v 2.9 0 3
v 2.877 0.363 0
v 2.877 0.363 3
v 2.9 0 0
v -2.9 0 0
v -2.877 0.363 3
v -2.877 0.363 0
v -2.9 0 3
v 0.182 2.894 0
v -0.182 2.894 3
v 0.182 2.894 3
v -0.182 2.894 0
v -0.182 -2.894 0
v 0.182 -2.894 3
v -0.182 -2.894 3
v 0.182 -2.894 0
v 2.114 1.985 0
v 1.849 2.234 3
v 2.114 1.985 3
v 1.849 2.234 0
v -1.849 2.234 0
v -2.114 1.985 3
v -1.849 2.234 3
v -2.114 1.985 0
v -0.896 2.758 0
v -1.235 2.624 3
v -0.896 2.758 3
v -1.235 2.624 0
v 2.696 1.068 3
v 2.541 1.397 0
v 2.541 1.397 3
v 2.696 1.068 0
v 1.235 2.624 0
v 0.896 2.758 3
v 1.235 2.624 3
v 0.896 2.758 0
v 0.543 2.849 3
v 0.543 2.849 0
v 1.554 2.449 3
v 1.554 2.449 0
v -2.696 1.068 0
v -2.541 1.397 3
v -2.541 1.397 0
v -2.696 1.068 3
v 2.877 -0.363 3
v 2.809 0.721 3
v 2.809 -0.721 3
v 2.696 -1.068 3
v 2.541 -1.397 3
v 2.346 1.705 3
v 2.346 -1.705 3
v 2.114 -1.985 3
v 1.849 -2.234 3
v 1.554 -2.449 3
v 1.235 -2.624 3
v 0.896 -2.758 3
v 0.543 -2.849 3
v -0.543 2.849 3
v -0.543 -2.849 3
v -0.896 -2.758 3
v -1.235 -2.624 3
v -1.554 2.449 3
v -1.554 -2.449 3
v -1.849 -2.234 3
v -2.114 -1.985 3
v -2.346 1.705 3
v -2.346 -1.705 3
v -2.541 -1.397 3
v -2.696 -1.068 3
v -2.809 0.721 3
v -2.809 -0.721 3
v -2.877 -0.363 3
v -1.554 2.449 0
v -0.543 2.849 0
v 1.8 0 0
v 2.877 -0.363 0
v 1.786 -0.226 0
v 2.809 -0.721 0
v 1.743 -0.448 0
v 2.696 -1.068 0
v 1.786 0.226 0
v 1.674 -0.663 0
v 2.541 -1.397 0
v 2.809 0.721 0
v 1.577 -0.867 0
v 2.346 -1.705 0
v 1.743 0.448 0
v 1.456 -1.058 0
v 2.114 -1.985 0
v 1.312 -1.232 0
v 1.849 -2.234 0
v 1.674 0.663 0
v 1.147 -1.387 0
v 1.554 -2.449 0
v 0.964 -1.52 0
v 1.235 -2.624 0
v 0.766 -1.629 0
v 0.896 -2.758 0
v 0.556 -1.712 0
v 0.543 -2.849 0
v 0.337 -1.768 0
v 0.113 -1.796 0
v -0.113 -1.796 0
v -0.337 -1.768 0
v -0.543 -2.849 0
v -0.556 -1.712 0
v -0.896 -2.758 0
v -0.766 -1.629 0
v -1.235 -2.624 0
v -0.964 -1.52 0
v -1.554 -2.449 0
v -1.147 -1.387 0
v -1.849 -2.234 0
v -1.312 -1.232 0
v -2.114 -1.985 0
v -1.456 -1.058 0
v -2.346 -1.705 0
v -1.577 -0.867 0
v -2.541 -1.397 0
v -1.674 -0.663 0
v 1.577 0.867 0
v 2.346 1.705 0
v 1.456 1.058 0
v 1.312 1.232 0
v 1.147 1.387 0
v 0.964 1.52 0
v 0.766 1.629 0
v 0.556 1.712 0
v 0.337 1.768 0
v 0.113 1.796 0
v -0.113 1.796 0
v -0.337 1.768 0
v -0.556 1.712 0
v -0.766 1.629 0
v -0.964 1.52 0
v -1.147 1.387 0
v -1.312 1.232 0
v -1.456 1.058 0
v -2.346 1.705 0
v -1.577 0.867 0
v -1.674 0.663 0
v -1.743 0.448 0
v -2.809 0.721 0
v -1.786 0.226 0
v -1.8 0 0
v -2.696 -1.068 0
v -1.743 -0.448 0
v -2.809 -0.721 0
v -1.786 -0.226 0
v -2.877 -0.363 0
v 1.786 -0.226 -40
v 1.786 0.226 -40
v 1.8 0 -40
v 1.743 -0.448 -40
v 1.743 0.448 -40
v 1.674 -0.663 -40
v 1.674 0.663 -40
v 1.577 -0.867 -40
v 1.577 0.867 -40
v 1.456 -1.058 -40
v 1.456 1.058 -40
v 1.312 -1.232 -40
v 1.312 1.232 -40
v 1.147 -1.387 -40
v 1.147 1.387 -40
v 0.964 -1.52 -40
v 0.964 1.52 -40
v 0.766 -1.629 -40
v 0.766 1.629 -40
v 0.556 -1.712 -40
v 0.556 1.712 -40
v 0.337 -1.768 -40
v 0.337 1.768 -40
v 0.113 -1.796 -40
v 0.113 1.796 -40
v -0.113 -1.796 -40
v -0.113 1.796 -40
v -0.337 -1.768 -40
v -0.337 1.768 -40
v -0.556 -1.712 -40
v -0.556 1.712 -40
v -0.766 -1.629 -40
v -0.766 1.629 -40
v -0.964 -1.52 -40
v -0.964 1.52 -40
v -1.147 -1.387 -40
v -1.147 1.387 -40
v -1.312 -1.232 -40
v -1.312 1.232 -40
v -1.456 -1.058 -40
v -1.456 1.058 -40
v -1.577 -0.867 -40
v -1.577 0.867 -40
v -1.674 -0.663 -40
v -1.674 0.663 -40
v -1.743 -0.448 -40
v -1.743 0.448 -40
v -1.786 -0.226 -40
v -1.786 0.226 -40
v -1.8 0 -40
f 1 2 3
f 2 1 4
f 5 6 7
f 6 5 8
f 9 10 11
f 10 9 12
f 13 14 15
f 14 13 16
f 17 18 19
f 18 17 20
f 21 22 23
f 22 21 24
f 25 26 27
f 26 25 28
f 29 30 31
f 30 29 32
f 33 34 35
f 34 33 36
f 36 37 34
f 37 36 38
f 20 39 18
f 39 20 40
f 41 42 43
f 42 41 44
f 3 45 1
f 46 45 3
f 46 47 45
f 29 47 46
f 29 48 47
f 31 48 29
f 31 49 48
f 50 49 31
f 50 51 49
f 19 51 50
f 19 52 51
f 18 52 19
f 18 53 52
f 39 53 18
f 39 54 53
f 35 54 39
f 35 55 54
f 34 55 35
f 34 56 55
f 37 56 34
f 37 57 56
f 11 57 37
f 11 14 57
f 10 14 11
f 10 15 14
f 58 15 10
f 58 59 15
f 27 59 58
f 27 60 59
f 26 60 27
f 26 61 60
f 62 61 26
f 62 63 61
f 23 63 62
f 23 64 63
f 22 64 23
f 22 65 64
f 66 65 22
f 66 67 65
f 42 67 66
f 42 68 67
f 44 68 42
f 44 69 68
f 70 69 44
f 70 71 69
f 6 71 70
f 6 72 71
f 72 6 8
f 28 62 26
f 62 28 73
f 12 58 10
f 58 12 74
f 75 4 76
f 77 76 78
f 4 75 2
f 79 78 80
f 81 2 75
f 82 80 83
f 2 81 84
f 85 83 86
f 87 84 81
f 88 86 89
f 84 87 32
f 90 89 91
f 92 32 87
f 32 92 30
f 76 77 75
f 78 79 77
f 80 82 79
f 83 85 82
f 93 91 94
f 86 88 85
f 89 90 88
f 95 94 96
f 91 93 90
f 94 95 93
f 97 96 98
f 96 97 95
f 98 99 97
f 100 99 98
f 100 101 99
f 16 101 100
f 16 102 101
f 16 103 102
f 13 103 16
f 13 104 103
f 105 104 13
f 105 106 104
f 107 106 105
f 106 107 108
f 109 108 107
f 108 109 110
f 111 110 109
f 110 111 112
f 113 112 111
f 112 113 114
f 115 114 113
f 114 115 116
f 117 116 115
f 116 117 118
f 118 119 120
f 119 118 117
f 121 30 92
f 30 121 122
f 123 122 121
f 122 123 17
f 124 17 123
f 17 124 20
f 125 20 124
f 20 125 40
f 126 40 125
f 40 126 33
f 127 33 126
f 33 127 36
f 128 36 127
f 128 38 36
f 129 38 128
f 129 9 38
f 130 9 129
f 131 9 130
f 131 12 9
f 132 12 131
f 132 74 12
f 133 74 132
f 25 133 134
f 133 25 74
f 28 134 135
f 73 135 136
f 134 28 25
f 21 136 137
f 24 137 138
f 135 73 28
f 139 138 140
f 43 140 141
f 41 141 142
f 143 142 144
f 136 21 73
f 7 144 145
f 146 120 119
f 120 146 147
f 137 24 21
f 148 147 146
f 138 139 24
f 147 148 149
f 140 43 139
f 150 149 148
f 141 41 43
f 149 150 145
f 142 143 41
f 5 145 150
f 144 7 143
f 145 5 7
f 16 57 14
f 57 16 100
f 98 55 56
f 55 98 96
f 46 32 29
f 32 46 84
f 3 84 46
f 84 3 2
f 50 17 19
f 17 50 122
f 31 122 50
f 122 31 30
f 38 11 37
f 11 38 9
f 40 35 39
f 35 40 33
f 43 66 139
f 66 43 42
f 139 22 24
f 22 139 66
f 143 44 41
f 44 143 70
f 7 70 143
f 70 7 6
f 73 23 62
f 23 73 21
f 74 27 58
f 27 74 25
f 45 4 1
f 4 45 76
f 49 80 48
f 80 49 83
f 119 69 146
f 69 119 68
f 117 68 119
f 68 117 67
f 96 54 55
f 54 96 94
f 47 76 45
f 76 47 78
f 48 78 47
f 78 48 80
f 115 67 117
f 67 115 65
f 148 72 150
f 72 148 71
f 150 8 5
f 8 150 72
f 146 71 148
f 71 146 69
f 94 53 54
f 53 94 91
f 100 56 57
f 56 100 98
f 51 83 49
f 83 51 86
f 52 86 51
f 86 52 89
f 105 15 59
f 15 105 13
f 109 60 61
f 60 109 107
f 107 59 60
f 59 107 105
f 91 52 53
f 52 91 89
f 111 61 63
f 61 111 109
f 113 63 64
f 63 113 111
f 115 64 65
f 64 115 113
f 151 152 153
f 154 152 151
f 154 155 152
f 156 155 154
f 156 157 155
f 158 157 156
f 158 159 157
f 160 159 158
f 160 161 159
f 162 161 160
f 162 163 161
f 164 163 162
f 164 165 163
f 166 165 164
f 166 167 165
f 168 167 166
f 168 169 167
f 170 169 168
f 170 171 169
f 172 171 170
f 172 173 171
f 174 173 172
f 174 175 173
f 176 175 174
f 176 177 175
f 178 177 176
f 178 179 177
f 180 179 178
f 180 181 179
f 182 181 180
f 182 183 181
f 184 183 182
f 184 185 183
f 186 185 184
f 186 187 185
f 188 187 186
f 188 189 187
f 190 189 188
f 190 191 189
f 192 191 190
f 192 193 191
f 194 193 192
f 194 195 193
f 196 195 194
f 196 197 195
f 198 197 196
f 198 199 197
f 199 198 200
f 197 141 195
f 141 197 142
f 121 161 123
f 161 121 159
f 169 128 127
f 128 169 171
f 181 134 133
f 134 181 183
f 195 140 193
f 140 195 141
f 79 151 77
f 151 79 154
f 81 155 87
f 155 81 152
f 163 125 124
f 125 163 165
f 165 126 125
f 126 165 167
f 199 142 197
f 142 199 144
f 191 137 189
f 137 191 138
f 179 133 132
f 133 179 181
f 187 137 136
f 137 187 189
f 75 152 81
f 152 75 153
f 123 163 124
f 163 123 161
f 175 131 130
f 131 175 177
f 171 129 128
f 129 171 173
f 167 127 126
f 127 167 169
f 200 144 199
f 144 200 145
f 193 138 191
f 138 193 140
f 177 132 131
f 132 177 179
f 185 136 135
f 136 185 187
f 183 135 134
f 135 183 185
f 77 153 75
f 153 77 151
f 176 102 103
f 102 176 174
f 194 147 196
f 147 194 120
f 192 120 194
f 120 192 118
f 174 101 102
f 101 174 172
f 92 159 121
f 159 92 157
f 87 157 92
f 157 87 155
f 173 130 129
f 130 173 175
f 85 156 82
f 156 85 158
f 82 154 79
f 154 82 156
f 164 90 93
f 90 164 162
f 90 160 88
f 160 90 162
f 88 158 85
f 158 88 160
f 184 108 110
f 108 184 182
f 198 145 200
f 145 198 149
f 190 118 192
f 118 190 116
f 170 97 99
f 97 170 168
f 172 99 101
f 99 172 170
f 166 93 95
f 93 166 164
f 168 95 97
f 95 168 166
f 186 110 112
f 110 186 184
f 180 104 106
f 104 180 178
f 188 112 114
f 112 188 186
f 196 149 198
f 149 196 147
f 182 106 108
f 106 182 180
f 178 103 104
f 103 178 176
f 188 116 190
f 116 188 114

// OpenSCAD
$fn = 50;


difference() {
	union() {
		translate(v = [0, 0, 0]) {
			rotate(a = [0, 0, 0]) {
				difference() {
					union() {
						cylinder(h = 3, r = 2.9000000000);
						translate(v = [0, 0, -40.0000000000]) {
							cylinder(h = 40, r = 1.5000000000);
						}
						translate(v = [0, 0, -40.0000000000]) {
							cylinder(h = 40, r = 1.8000000000);
						}
						translate(v = [0, 0, -40.0000000000]) {
							cylinder(h = 40, r = 1.5000000000);
						}
					}
					union();
				}
			}
		}
	}
	union();
}
